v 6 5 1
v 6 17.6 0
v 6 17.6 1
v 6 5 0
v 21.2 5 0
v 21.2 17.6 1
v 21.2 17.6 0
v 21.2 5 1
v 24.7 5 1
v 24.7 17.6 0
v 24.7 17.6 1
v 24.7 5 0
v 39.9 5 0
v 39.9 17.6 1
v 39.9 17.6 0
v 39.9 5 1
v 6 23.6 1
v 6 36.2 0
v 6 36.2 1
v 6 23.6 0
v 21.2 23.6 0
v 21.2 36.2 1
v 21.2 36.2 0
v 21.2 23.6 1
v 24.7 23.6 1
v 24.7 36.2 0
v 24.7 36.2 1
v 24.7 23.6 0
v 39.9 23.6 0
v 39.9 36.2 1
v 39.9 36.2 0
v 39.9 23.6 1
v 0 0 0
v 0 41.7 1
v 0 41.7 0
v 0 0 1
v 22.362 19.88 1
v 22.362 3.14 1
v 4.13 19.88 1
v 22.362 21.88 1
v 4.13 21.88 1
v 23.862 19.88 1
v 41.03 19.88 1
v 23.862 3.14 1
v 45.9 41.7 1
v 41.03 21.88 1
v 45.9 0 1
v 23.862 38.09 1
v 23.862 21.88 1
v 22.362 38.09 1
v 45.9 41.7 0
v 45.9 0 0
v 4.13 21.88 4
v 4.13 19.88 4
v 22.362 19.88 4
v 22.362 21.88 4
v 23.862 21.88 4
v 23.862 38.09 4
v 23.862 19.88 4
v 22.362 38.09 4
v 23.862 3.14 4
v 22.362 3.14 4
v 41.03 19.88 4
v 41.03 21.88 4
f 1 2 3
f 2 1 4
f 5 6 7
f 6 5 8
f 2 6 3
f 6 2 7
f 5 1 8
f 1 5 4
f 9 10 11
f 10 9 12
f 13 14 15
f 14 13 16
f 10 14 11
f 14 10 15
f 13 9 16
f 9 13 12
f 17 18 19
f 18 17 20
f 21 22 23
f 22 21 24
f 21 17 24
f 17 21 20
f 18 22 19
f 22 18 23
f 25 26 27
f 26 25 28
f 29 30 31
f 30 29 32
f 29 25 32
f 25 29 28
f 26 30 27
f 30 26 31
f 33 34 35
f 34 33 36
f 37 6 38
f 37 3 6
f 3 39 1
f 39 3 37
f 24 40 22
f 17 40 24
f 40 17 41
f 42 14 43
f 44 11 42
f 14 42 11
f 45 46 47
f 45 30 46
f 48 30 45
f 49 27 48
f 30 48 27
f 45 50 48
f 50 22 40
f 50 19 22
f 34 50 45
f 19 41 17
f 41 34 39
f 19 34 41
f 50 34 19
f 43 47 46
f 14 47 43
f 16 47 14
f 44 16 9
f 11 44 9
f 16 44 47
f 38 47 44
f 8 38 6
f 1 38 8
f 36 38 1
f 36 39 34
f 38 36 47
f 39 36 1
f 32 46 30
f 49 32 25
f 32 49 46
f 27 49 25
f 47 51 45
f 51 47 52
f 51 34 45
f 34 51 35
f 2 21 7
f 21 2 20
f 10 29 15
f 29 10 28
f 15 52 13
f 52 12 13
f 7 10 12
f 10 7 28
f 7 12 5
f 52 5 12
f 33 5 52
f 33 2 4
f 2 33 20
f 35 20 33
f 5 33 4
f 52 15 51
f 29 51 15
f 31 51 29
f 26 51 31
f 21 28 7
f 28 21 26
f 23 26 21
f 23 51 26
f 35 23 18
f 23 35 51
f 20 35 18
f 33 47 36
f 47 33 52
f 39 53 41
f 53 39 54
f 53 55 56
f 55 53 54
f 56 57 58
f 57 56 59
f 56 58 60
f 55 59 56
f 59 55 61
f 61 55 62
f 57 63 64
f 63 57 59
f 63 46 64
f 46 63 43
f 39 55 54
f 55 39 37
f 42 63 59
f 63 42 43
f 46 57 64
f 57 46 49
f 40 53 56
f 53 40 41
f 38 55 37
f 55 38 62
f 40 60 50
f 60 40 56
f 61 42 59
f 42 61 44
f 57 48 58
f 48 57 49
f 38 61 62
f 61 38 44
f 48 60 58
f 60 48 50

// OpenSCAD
/* KeySizeTest
 * Make a small 2x2 matrix to test keyholes.
 */
keyCols = 2;
keyRows = 2;
keyX = 15.2;
keyY = 12.6;
keySpace = 3.5;
vKeySpace=6;
edgeSpaceAddition = 4;
edgeSpace = (edgeSpaceAddition*2)-keySpace;
keyZ = -1;

moduleX = (edgeSpace+edgeSpaceAddition)+(keySpace*keyCols)+keyX*(keyCols-1)+keyX;
moduleY = (edgeSpaceAddition*2-keySpace)+(vKeySpace*keyRows)+keyY*(keyRows-1)+keyY;
moduleZ = 1;

keySize = [keyX, keyY, moduleZ+2];

function position(x,y,z) = [edgeSpace+keySpace*x+keyX*(x-1)-(edgeSpaceAddition/2), edgeSpace-keySpace+(vKeySpace)*y+keyY*(y-1)-(edgeSpaceAddition/2), z];

module keyHoles (yStart, yEnd, xStart, xEnd){
  for(y = [yStart:yEnd]){
    for(x = [xStart:xEnd]){
      translate(position(x,y,keyZ)) cube(keySize);
    }
  }
}

module hBeam (bStart, bEnd){
  for (b = [bStart:bEnd]){  
    color([0.5,0,0]){
      translate(position(0.9,b-0.2,1)){  
        cube([moduleX-(edgeSpace*2),2,3]);
      }
    }
  }
}

module vBeam (bStart, bEnd){
  for (b = [bStart:bEnd]){  
    color([0.5,0,0]){
      translate(position(b-0.125,0.9,1)){  
        cube([1.5,moduleY-(edgeSpace*1.5),3]);
      }
    }
  }
}


difference(){
  cube([moduleX,moduleY,moduleZ]);
  keyHoles(1,2,1,2);
}

hBeam(2, keyRows);
vBeam(2, keyCols);
